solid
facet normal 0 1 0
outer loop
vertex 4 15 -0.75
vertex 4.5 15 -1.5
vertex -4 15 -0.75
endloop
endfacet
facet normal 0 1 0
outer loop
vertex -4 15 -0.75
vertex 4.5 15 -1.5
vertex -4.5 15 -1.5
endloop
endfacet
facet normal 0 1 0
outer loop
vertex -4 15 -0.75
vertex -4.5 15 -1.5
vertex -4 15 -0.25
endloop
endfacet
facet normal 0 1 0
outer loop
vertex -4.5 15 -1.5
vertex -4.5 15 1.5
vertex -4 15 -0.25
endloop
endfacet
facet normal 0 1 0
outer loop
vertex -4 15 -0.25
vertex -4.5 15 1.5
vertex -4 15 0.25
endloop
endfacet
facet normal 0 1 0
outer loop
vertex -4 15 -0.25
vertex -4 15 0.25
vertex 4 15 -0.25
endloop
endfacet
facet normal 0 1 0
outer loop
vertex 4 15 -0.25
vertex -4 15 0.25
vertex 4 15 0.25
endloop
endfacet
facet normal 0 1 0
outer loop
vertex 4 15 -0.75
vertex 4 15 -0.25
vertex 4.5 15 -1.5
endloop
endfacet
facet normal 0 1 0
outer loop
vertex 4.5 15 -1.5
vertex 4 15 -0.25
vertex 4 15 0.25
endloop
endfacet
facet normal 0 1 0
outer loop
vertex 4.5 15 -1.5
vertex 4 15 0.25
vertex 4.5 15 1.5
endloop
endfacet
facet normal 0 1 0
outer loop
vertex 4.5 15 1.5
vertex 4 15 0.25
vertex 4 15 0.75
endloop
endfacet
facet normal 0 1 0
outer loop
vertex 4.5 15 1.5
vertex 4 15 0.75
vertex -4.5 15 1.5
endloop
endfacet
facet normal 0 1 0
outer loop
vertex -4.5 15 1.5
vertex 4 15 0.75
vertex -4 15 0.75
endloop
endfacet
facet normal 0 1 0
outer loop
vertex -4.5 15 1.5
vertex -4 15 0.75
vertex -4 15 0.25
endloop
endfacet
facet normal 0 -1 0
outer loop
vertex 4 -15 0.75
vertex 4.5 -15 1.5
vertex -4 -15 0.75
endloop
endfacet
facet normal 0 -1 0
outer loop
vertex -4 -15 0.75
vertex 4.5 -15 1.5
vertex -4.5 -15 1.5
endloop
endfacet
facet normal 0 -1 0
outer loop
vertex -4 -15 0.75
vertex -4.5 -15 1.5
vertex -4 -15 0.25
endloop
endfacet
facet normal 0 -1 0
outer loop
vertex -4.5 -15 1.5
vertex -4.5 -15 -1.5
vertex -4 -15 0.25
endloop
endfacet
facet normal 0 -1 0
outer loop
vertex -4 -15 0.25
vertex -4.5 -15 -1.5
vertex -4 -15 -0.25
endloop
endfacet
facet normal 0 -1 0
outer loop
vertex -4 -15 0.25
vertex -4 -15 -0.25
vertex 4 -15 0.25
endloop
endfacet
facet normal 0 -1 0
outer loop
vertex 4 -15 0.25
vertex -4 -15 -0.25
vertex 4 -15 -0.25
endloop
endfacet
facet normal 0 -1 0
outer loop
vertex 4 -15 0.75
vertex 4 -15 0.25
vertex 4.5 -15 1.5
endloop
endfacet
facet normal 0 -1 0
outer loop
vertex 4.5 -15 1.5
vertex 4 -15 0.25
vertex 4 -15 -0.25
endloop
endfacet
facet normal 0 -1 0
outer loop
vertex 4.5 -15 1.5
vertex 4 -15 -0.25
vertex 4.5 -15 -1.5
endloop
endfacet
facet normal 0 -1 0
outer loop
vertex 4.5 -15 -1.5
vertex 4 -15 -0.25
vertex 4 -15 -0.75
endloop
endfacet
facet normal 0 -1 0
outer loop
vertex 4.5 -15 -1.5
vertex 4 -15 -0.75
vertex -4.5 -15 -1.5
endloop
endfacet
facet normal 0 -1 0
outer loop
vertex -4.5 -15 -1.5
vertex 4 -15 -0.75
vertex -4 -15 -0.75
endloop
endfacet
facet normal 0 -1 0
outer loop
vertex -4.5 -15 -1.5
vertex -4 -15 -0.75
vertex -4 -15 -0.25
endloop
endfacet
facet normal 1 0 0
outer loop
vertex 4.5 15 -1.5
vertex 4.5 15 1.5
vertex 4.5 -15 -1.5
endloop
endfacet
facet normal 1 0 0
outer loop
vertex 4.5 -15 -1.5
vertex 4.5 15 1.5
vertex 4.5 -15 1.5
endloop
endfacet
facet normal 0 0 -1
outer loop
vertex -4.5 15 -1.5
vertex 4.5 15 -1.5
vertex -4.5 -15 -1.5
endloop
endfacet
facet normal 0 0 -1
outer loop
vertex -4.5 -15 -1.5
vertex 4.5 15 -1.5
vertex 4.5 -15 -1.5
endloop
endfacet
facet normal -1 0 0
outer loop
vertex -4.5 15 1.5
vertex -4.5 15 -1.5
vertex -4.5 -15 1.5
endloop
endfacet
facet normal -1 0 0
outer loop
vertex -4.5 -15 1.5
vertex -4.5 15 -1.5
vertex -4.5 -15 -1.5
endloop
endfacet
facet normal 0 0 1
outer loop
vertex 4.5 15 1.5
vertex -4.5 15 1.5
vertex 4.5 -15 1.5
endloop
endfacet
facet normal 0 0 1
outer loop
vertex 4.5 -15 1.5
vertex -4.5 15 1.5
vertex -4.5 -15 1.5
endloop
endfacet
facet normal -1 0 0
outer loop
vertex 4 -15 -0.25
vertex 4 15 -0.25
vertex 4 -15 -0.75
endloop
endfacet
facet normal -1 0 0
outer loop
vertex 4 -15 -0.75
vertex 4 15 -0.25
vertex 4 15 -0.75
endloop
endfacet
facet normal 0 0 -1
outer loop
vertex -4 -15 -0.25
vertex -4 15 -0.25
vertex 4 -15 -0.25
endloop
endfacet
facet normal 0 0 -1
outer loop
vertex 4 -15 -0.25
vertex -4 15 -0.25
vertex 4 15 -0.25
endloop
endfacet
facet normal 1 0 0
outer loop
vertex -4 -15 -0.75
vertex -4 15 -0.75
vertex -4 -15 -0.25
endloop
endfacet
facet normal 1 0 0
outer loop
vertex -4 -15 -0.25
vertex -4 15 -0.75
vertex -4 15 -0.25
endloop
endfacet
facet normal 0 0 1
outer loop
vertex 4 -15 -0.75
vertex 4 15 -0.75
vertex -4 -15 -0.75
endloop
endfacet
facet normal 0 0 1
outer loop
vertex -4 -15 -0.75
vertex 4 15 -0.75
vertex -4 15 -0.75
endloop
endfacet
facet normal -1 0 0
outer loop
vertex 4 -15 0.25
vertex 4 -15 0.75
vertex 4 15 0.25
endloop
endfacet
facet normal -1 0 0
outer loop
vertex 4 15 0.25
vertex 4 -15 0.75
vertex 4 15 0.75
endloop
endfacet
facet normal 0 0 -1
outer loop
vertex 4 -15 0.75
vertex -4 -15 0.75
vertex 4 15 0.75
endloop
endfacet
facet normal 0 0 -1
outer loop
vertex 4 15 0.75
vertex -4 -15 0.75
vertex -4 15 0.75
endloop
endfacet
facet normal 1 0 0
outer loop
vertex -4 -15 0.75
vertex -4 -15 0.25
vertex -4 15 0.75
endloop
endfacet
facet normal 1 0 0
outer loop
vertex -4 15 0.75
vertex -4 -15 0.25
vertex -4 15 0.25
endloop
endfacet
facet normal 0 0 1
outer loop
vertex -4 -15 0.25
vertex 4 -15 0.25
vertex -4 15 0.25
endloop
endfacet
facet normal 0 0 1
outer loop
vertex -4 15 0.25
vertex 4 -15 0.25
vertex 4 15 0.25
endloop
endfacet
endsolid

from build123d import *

# Parameters (mm, degrees)
SKETCH1_W           = 9
SKETCH1_H           = 3
BOSS_EXTRUDE1_DEPTH = 15
CUT_EXTRUDE1_START  = -31
SKETCH2_W           = 8
SKETCH2_H           = 0.5
CUT_EXTRUDE1_DEPTH  = 32


with BuildPart() as part:
    # Sketch1 → Boss-Extrude1 (new body, symmetric)
    with BuildSketch(Plane(origin=(0, 0, 0), x_dir=(1, 0, 0), z_dir=(0, 1, 0))):
        Rectangle(SKETCH1_W, SKETCH1_H)
    extrude(amount=BOSS_EXTRUDE1_DEPTH, both=True)

    # Sketch2 → Cut-Extrude1 (cut)
    with BuildSketch(Plane(origin=(0, 15, 0), x_dir=(1, 0, 0), z_dir=(0, 1, 0)).offset(CUT_EXTRUDE1_START)):
        with Locations((0, 0.5)):
            Rectangle(SKETCH2_W, SKETCH2_H)
    cut_extrude1 = extrude(amount=CUT_EXTRUDE1_DEPTH, mode=Mode.SUBTRACT)

    # Mirror1: Cut-Extrude1 across plane
    add(cut_extrude1.mirror(Plane.XY), mode=Mode.SUBTRACT)


solid = part.part
